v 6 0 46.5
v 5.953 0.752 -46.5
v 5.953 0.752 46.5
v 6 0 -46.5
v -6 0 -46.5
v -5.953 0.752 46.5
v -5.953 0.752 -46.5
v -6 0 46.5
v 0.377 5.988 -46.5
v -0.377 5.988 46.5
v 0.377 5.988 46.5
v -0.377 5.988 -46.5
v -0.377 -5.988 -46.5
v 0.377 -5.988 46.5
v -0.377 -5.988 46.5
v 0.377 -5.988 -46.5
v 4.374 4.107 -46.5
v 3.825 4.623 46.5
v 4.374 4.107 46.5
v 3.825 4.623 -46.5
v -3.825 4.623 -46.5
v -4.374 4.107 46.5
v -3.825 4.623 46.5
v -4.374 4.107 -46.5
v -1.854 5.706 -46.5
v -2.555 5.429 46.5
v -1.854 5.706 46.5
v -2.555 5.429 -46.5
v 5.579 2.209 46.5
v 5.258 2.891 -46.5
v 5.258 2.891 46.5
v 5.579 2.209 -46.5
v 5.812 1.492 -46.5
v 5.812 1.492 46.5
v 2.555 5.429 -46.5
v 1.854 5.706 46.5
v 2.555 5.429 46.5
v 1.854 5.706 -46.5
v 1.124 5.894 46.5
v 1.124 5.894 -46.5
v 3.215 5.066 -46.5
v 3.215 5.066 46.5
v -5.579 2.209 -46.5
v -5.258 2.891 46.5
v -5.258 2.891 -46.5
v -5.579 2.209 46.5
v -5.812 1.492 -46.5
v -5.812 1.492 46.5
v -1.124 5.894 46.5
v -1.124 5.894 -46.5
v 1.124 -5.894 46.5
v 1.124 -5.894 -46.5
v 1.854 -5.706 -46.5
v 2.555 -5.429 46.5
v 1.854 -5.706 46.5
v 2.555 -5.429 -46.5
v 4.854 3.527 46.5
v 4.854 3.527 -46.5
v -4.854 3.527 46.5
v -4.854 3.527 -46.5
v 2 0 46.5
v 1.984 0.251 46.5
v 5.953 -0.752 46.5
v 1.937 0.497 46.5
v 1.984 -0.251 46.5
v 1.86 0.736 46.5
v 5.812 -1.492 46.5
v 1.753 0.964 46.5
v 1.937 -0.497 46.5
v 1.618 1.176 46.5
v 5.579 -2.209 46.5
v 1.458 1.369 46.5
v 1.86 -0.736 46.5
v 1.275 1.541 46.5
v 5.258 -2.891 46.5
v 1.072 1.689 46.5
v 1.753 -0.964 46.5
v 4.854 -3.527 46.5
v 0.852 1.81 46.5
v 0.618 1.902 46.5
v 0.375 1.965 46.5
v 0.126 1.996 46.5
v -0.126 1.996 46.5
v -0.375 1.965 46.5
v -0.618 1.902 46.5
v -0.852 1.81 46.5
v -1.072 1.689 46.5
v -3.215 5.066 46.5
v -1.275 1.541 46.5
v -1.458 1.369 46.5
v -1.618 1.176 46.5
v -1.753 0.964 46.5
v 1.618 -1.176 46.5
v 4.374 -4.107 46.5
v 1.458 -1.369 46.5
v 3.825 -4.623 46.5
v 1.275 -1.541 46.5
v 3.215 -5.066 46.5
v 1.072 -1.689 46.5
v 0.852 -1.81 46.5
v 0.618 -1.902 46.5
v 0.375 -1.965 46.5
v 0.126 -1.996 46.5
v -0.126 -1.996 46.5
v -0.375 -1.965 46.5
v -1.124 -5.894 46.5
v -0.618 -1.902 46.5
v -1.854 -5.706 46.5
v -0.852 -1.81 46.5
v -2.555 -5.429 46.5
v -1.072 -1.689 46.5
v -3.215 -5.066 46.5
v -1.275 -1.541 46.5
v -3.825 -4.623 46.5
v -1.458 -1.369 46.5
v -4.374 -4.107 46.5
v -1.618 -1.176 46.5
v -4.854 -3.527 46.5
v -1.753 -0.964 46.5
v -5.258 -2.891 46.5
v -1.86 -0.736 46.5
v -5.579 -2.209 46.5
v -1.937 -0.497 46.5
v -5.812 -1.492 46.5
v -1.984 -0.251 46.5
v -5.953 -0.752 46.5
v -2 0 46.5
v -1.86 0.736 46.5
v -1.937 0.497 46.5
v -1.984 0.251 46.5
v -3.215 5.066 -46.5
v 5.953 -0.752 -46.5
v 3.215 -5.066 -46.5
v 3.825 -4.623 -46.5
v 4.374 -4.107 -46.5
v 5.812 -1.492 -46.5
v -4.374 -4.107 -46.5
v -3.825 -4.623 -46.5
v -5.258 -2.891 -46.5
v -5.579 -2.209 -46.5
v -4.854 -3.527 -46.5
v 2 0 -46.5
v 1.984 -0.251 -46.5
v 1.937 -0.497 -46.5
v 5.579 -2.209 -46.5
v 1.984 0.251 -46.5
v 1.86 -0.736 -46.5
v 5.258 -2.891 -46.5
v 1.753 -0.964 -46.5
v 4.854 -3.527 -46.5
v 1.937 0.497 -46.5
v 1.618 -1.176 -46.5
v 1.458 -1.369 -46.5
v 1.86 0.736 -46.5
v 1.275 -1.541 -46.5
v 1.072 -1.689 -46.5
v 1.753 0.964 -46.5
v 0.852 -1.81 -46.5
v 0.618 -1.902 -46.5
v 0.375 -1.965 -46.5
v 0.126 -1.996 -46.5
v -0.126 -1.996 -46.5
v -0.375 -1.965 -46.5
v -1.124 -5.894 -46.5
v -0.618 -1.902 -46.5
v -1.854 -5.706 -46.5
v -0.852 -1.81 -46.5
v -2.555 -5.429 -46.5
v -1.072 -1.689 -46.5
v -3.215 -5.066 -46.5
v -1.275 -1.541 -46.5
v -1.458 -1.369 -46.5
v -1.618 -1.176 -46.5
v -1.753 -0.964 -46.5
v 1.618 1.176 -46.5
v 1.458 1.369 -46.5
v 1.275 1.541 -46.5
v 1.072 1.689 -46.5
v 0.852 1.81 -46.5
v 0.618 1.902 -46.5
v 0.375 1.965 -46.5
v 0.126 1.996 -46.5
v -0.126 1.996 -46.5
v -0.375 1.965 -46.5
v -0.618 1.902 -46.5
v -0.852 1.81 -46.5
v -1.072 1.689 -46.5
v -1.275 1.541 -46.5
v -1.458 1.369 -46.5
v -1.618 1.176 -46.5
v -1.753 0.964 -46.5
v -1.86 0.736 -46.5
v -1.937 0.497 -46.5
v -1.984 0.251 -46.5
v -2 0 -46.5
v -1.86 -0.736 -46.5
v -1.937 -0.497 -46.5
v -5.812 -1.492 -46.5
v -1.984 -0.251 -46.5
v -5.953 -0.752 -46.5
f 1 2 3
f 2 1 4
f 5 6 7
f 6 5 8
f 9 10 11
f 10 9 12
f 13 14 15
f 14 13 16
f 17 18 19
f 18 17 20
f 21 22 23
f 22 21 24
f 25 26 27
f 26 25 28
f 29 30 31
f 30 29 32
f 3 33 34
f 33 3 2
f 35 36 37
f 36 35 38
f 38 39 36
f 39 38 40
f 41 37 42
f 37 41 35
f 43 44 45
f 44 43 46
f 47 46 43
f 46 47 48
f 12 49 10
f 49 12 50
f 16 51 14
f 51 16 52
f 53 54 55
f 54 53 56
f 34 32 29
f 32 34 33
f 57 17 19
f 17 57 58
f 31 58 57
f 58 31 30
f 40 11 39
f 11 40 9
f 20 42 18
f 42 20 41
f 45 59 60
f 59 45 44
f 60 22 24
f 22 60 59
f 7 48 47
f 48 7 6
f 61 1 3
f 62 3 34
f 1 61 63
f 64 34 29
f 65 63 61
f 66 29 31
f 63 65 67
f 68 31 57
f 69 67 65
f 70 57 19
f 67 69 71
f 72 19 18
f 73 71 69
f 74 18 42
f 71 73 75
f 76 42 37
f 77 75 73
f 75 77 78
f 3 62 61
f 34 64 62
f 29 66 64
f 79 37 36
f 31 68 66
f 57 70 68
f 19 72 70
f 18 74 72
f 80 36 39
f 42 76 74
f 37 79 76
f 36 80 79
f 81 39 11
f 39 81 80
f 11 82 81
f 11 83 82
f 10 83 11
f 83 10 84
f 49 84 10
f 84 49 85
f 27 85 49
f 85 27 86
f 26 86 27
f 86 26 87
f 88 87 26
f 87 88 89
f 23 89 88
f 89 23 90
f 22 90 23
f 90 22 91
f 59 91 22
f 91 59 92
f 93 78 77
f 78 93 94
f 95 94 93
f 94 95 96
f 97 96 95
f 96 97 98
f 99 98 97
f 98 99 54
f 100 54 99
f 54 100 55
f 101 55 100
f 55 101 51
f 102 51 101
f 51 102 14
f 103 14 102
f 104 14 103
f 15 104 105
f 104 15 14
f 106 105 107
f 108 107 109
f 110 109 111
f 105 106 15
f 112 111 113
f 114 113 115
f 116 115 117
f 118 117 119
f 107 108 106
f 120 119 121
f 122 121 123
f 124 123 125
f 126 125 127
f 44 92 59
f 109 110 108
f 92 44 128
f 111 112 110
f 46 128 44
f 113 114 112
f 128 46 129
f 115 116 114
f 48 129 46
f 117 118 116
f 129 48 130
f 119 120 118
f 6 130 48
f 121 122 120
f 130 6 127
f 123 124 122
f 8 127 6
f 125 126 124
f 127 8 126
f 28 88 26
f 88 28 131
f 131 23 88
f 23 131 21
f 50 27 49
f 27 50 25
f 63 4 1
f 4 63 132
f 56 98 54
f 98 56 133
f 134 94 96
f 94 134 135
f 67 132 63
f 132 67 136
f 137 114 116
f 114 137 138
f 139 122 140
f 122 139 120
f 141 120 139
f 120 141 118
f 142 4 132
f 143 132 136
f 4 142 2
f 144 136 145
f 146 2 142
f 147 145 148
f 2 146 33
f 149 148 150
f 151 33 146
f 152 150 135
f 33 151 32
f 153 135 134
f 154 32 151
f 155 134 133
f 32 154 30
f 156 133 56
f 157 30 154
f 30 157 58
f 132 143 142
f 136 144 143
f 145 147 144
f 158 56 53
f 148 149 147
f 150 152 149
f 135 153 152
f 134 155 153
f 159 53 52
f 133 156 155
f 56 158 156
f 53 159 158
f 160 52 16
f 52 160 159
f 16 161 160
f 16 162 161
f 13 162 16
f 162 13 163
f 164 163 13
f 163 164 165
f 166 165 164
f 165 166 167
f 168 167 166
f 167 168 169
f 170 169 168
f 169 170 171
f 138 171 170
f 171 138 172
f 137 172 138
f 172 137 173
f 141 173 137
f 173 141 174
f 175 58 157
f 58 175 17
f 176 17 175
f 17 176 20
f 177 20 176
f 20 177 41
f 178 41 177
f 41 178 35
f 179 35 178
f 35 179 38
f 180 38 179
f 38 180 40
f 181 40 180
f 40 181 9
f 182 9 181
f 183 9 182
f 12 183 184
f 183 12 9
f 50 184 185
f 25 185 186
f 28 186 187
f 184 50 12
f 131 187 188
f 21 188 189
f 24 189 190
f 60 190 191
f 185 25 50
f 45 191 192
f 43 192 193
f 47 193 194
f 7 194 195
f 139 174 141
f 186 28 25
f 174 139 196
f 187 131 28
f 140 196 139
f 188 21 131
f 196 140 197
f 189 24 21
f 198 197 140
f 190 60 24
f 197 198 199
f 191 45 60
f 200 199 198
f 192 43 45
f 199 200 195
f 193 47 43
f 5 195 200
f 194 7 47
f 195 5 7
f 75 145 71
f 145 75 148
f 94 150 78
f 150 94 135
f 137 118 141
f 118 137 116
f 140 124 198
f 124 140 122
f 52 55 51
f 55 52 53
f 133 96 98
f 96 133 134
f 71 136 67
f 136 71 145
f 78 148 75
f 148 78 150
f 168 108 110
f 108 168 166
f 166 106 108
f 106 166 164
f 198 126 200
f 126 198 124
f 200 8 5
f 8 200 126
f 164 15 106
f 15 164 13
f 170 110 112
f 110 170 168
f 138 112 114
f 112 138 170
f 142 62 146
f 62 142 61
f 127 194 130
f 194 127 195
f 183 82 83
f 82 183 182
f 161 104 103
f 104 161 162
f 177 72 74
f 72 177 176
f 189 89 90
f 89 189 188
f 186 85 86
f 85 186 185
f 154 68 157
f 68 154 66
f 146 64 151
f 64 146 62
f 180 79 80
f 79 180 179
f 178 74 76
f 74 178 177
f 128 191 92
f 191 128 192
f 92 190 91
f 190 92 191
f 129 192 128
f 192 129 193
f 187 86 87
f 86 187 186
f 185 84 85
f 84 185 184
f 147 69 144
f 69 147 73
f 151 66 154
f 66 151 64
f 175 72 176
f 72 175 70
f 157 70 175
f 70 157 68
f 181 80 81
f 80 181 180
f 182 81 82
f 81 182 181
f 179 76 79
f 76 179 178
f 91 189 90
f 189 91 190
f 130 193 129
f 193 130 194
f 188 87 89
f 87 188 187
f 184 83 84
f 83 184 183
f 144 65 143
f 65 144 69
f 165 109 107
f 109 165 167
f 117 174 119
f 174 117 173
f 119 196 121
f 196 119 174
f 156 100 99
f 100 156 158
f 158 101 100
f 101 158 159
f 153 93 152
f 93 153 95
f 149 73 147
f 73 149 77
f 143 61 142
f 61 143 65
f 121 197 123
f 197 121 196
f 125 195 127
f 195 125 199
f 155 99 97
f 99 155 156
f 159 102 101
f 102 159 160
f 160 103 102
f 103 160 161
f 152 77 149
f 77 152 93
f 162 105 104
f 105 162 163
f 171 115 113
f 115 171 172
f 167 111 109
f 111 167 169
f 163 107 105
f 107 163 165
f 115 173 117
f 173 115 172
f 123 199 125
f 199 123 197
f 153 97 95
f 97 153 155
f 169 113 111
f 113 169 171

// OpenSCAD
$fn = 50;


difference() {
	union() {
		translate(v = [0, 0, -46.5000000000]) {
			cylinder(h = 93, r = 6.0000000000);
		}
	}
	union() {
		translate(v = [0, 0, -100.0000000000]) {
			cylinder(h = 200, r = 2);
		}
	}
}
